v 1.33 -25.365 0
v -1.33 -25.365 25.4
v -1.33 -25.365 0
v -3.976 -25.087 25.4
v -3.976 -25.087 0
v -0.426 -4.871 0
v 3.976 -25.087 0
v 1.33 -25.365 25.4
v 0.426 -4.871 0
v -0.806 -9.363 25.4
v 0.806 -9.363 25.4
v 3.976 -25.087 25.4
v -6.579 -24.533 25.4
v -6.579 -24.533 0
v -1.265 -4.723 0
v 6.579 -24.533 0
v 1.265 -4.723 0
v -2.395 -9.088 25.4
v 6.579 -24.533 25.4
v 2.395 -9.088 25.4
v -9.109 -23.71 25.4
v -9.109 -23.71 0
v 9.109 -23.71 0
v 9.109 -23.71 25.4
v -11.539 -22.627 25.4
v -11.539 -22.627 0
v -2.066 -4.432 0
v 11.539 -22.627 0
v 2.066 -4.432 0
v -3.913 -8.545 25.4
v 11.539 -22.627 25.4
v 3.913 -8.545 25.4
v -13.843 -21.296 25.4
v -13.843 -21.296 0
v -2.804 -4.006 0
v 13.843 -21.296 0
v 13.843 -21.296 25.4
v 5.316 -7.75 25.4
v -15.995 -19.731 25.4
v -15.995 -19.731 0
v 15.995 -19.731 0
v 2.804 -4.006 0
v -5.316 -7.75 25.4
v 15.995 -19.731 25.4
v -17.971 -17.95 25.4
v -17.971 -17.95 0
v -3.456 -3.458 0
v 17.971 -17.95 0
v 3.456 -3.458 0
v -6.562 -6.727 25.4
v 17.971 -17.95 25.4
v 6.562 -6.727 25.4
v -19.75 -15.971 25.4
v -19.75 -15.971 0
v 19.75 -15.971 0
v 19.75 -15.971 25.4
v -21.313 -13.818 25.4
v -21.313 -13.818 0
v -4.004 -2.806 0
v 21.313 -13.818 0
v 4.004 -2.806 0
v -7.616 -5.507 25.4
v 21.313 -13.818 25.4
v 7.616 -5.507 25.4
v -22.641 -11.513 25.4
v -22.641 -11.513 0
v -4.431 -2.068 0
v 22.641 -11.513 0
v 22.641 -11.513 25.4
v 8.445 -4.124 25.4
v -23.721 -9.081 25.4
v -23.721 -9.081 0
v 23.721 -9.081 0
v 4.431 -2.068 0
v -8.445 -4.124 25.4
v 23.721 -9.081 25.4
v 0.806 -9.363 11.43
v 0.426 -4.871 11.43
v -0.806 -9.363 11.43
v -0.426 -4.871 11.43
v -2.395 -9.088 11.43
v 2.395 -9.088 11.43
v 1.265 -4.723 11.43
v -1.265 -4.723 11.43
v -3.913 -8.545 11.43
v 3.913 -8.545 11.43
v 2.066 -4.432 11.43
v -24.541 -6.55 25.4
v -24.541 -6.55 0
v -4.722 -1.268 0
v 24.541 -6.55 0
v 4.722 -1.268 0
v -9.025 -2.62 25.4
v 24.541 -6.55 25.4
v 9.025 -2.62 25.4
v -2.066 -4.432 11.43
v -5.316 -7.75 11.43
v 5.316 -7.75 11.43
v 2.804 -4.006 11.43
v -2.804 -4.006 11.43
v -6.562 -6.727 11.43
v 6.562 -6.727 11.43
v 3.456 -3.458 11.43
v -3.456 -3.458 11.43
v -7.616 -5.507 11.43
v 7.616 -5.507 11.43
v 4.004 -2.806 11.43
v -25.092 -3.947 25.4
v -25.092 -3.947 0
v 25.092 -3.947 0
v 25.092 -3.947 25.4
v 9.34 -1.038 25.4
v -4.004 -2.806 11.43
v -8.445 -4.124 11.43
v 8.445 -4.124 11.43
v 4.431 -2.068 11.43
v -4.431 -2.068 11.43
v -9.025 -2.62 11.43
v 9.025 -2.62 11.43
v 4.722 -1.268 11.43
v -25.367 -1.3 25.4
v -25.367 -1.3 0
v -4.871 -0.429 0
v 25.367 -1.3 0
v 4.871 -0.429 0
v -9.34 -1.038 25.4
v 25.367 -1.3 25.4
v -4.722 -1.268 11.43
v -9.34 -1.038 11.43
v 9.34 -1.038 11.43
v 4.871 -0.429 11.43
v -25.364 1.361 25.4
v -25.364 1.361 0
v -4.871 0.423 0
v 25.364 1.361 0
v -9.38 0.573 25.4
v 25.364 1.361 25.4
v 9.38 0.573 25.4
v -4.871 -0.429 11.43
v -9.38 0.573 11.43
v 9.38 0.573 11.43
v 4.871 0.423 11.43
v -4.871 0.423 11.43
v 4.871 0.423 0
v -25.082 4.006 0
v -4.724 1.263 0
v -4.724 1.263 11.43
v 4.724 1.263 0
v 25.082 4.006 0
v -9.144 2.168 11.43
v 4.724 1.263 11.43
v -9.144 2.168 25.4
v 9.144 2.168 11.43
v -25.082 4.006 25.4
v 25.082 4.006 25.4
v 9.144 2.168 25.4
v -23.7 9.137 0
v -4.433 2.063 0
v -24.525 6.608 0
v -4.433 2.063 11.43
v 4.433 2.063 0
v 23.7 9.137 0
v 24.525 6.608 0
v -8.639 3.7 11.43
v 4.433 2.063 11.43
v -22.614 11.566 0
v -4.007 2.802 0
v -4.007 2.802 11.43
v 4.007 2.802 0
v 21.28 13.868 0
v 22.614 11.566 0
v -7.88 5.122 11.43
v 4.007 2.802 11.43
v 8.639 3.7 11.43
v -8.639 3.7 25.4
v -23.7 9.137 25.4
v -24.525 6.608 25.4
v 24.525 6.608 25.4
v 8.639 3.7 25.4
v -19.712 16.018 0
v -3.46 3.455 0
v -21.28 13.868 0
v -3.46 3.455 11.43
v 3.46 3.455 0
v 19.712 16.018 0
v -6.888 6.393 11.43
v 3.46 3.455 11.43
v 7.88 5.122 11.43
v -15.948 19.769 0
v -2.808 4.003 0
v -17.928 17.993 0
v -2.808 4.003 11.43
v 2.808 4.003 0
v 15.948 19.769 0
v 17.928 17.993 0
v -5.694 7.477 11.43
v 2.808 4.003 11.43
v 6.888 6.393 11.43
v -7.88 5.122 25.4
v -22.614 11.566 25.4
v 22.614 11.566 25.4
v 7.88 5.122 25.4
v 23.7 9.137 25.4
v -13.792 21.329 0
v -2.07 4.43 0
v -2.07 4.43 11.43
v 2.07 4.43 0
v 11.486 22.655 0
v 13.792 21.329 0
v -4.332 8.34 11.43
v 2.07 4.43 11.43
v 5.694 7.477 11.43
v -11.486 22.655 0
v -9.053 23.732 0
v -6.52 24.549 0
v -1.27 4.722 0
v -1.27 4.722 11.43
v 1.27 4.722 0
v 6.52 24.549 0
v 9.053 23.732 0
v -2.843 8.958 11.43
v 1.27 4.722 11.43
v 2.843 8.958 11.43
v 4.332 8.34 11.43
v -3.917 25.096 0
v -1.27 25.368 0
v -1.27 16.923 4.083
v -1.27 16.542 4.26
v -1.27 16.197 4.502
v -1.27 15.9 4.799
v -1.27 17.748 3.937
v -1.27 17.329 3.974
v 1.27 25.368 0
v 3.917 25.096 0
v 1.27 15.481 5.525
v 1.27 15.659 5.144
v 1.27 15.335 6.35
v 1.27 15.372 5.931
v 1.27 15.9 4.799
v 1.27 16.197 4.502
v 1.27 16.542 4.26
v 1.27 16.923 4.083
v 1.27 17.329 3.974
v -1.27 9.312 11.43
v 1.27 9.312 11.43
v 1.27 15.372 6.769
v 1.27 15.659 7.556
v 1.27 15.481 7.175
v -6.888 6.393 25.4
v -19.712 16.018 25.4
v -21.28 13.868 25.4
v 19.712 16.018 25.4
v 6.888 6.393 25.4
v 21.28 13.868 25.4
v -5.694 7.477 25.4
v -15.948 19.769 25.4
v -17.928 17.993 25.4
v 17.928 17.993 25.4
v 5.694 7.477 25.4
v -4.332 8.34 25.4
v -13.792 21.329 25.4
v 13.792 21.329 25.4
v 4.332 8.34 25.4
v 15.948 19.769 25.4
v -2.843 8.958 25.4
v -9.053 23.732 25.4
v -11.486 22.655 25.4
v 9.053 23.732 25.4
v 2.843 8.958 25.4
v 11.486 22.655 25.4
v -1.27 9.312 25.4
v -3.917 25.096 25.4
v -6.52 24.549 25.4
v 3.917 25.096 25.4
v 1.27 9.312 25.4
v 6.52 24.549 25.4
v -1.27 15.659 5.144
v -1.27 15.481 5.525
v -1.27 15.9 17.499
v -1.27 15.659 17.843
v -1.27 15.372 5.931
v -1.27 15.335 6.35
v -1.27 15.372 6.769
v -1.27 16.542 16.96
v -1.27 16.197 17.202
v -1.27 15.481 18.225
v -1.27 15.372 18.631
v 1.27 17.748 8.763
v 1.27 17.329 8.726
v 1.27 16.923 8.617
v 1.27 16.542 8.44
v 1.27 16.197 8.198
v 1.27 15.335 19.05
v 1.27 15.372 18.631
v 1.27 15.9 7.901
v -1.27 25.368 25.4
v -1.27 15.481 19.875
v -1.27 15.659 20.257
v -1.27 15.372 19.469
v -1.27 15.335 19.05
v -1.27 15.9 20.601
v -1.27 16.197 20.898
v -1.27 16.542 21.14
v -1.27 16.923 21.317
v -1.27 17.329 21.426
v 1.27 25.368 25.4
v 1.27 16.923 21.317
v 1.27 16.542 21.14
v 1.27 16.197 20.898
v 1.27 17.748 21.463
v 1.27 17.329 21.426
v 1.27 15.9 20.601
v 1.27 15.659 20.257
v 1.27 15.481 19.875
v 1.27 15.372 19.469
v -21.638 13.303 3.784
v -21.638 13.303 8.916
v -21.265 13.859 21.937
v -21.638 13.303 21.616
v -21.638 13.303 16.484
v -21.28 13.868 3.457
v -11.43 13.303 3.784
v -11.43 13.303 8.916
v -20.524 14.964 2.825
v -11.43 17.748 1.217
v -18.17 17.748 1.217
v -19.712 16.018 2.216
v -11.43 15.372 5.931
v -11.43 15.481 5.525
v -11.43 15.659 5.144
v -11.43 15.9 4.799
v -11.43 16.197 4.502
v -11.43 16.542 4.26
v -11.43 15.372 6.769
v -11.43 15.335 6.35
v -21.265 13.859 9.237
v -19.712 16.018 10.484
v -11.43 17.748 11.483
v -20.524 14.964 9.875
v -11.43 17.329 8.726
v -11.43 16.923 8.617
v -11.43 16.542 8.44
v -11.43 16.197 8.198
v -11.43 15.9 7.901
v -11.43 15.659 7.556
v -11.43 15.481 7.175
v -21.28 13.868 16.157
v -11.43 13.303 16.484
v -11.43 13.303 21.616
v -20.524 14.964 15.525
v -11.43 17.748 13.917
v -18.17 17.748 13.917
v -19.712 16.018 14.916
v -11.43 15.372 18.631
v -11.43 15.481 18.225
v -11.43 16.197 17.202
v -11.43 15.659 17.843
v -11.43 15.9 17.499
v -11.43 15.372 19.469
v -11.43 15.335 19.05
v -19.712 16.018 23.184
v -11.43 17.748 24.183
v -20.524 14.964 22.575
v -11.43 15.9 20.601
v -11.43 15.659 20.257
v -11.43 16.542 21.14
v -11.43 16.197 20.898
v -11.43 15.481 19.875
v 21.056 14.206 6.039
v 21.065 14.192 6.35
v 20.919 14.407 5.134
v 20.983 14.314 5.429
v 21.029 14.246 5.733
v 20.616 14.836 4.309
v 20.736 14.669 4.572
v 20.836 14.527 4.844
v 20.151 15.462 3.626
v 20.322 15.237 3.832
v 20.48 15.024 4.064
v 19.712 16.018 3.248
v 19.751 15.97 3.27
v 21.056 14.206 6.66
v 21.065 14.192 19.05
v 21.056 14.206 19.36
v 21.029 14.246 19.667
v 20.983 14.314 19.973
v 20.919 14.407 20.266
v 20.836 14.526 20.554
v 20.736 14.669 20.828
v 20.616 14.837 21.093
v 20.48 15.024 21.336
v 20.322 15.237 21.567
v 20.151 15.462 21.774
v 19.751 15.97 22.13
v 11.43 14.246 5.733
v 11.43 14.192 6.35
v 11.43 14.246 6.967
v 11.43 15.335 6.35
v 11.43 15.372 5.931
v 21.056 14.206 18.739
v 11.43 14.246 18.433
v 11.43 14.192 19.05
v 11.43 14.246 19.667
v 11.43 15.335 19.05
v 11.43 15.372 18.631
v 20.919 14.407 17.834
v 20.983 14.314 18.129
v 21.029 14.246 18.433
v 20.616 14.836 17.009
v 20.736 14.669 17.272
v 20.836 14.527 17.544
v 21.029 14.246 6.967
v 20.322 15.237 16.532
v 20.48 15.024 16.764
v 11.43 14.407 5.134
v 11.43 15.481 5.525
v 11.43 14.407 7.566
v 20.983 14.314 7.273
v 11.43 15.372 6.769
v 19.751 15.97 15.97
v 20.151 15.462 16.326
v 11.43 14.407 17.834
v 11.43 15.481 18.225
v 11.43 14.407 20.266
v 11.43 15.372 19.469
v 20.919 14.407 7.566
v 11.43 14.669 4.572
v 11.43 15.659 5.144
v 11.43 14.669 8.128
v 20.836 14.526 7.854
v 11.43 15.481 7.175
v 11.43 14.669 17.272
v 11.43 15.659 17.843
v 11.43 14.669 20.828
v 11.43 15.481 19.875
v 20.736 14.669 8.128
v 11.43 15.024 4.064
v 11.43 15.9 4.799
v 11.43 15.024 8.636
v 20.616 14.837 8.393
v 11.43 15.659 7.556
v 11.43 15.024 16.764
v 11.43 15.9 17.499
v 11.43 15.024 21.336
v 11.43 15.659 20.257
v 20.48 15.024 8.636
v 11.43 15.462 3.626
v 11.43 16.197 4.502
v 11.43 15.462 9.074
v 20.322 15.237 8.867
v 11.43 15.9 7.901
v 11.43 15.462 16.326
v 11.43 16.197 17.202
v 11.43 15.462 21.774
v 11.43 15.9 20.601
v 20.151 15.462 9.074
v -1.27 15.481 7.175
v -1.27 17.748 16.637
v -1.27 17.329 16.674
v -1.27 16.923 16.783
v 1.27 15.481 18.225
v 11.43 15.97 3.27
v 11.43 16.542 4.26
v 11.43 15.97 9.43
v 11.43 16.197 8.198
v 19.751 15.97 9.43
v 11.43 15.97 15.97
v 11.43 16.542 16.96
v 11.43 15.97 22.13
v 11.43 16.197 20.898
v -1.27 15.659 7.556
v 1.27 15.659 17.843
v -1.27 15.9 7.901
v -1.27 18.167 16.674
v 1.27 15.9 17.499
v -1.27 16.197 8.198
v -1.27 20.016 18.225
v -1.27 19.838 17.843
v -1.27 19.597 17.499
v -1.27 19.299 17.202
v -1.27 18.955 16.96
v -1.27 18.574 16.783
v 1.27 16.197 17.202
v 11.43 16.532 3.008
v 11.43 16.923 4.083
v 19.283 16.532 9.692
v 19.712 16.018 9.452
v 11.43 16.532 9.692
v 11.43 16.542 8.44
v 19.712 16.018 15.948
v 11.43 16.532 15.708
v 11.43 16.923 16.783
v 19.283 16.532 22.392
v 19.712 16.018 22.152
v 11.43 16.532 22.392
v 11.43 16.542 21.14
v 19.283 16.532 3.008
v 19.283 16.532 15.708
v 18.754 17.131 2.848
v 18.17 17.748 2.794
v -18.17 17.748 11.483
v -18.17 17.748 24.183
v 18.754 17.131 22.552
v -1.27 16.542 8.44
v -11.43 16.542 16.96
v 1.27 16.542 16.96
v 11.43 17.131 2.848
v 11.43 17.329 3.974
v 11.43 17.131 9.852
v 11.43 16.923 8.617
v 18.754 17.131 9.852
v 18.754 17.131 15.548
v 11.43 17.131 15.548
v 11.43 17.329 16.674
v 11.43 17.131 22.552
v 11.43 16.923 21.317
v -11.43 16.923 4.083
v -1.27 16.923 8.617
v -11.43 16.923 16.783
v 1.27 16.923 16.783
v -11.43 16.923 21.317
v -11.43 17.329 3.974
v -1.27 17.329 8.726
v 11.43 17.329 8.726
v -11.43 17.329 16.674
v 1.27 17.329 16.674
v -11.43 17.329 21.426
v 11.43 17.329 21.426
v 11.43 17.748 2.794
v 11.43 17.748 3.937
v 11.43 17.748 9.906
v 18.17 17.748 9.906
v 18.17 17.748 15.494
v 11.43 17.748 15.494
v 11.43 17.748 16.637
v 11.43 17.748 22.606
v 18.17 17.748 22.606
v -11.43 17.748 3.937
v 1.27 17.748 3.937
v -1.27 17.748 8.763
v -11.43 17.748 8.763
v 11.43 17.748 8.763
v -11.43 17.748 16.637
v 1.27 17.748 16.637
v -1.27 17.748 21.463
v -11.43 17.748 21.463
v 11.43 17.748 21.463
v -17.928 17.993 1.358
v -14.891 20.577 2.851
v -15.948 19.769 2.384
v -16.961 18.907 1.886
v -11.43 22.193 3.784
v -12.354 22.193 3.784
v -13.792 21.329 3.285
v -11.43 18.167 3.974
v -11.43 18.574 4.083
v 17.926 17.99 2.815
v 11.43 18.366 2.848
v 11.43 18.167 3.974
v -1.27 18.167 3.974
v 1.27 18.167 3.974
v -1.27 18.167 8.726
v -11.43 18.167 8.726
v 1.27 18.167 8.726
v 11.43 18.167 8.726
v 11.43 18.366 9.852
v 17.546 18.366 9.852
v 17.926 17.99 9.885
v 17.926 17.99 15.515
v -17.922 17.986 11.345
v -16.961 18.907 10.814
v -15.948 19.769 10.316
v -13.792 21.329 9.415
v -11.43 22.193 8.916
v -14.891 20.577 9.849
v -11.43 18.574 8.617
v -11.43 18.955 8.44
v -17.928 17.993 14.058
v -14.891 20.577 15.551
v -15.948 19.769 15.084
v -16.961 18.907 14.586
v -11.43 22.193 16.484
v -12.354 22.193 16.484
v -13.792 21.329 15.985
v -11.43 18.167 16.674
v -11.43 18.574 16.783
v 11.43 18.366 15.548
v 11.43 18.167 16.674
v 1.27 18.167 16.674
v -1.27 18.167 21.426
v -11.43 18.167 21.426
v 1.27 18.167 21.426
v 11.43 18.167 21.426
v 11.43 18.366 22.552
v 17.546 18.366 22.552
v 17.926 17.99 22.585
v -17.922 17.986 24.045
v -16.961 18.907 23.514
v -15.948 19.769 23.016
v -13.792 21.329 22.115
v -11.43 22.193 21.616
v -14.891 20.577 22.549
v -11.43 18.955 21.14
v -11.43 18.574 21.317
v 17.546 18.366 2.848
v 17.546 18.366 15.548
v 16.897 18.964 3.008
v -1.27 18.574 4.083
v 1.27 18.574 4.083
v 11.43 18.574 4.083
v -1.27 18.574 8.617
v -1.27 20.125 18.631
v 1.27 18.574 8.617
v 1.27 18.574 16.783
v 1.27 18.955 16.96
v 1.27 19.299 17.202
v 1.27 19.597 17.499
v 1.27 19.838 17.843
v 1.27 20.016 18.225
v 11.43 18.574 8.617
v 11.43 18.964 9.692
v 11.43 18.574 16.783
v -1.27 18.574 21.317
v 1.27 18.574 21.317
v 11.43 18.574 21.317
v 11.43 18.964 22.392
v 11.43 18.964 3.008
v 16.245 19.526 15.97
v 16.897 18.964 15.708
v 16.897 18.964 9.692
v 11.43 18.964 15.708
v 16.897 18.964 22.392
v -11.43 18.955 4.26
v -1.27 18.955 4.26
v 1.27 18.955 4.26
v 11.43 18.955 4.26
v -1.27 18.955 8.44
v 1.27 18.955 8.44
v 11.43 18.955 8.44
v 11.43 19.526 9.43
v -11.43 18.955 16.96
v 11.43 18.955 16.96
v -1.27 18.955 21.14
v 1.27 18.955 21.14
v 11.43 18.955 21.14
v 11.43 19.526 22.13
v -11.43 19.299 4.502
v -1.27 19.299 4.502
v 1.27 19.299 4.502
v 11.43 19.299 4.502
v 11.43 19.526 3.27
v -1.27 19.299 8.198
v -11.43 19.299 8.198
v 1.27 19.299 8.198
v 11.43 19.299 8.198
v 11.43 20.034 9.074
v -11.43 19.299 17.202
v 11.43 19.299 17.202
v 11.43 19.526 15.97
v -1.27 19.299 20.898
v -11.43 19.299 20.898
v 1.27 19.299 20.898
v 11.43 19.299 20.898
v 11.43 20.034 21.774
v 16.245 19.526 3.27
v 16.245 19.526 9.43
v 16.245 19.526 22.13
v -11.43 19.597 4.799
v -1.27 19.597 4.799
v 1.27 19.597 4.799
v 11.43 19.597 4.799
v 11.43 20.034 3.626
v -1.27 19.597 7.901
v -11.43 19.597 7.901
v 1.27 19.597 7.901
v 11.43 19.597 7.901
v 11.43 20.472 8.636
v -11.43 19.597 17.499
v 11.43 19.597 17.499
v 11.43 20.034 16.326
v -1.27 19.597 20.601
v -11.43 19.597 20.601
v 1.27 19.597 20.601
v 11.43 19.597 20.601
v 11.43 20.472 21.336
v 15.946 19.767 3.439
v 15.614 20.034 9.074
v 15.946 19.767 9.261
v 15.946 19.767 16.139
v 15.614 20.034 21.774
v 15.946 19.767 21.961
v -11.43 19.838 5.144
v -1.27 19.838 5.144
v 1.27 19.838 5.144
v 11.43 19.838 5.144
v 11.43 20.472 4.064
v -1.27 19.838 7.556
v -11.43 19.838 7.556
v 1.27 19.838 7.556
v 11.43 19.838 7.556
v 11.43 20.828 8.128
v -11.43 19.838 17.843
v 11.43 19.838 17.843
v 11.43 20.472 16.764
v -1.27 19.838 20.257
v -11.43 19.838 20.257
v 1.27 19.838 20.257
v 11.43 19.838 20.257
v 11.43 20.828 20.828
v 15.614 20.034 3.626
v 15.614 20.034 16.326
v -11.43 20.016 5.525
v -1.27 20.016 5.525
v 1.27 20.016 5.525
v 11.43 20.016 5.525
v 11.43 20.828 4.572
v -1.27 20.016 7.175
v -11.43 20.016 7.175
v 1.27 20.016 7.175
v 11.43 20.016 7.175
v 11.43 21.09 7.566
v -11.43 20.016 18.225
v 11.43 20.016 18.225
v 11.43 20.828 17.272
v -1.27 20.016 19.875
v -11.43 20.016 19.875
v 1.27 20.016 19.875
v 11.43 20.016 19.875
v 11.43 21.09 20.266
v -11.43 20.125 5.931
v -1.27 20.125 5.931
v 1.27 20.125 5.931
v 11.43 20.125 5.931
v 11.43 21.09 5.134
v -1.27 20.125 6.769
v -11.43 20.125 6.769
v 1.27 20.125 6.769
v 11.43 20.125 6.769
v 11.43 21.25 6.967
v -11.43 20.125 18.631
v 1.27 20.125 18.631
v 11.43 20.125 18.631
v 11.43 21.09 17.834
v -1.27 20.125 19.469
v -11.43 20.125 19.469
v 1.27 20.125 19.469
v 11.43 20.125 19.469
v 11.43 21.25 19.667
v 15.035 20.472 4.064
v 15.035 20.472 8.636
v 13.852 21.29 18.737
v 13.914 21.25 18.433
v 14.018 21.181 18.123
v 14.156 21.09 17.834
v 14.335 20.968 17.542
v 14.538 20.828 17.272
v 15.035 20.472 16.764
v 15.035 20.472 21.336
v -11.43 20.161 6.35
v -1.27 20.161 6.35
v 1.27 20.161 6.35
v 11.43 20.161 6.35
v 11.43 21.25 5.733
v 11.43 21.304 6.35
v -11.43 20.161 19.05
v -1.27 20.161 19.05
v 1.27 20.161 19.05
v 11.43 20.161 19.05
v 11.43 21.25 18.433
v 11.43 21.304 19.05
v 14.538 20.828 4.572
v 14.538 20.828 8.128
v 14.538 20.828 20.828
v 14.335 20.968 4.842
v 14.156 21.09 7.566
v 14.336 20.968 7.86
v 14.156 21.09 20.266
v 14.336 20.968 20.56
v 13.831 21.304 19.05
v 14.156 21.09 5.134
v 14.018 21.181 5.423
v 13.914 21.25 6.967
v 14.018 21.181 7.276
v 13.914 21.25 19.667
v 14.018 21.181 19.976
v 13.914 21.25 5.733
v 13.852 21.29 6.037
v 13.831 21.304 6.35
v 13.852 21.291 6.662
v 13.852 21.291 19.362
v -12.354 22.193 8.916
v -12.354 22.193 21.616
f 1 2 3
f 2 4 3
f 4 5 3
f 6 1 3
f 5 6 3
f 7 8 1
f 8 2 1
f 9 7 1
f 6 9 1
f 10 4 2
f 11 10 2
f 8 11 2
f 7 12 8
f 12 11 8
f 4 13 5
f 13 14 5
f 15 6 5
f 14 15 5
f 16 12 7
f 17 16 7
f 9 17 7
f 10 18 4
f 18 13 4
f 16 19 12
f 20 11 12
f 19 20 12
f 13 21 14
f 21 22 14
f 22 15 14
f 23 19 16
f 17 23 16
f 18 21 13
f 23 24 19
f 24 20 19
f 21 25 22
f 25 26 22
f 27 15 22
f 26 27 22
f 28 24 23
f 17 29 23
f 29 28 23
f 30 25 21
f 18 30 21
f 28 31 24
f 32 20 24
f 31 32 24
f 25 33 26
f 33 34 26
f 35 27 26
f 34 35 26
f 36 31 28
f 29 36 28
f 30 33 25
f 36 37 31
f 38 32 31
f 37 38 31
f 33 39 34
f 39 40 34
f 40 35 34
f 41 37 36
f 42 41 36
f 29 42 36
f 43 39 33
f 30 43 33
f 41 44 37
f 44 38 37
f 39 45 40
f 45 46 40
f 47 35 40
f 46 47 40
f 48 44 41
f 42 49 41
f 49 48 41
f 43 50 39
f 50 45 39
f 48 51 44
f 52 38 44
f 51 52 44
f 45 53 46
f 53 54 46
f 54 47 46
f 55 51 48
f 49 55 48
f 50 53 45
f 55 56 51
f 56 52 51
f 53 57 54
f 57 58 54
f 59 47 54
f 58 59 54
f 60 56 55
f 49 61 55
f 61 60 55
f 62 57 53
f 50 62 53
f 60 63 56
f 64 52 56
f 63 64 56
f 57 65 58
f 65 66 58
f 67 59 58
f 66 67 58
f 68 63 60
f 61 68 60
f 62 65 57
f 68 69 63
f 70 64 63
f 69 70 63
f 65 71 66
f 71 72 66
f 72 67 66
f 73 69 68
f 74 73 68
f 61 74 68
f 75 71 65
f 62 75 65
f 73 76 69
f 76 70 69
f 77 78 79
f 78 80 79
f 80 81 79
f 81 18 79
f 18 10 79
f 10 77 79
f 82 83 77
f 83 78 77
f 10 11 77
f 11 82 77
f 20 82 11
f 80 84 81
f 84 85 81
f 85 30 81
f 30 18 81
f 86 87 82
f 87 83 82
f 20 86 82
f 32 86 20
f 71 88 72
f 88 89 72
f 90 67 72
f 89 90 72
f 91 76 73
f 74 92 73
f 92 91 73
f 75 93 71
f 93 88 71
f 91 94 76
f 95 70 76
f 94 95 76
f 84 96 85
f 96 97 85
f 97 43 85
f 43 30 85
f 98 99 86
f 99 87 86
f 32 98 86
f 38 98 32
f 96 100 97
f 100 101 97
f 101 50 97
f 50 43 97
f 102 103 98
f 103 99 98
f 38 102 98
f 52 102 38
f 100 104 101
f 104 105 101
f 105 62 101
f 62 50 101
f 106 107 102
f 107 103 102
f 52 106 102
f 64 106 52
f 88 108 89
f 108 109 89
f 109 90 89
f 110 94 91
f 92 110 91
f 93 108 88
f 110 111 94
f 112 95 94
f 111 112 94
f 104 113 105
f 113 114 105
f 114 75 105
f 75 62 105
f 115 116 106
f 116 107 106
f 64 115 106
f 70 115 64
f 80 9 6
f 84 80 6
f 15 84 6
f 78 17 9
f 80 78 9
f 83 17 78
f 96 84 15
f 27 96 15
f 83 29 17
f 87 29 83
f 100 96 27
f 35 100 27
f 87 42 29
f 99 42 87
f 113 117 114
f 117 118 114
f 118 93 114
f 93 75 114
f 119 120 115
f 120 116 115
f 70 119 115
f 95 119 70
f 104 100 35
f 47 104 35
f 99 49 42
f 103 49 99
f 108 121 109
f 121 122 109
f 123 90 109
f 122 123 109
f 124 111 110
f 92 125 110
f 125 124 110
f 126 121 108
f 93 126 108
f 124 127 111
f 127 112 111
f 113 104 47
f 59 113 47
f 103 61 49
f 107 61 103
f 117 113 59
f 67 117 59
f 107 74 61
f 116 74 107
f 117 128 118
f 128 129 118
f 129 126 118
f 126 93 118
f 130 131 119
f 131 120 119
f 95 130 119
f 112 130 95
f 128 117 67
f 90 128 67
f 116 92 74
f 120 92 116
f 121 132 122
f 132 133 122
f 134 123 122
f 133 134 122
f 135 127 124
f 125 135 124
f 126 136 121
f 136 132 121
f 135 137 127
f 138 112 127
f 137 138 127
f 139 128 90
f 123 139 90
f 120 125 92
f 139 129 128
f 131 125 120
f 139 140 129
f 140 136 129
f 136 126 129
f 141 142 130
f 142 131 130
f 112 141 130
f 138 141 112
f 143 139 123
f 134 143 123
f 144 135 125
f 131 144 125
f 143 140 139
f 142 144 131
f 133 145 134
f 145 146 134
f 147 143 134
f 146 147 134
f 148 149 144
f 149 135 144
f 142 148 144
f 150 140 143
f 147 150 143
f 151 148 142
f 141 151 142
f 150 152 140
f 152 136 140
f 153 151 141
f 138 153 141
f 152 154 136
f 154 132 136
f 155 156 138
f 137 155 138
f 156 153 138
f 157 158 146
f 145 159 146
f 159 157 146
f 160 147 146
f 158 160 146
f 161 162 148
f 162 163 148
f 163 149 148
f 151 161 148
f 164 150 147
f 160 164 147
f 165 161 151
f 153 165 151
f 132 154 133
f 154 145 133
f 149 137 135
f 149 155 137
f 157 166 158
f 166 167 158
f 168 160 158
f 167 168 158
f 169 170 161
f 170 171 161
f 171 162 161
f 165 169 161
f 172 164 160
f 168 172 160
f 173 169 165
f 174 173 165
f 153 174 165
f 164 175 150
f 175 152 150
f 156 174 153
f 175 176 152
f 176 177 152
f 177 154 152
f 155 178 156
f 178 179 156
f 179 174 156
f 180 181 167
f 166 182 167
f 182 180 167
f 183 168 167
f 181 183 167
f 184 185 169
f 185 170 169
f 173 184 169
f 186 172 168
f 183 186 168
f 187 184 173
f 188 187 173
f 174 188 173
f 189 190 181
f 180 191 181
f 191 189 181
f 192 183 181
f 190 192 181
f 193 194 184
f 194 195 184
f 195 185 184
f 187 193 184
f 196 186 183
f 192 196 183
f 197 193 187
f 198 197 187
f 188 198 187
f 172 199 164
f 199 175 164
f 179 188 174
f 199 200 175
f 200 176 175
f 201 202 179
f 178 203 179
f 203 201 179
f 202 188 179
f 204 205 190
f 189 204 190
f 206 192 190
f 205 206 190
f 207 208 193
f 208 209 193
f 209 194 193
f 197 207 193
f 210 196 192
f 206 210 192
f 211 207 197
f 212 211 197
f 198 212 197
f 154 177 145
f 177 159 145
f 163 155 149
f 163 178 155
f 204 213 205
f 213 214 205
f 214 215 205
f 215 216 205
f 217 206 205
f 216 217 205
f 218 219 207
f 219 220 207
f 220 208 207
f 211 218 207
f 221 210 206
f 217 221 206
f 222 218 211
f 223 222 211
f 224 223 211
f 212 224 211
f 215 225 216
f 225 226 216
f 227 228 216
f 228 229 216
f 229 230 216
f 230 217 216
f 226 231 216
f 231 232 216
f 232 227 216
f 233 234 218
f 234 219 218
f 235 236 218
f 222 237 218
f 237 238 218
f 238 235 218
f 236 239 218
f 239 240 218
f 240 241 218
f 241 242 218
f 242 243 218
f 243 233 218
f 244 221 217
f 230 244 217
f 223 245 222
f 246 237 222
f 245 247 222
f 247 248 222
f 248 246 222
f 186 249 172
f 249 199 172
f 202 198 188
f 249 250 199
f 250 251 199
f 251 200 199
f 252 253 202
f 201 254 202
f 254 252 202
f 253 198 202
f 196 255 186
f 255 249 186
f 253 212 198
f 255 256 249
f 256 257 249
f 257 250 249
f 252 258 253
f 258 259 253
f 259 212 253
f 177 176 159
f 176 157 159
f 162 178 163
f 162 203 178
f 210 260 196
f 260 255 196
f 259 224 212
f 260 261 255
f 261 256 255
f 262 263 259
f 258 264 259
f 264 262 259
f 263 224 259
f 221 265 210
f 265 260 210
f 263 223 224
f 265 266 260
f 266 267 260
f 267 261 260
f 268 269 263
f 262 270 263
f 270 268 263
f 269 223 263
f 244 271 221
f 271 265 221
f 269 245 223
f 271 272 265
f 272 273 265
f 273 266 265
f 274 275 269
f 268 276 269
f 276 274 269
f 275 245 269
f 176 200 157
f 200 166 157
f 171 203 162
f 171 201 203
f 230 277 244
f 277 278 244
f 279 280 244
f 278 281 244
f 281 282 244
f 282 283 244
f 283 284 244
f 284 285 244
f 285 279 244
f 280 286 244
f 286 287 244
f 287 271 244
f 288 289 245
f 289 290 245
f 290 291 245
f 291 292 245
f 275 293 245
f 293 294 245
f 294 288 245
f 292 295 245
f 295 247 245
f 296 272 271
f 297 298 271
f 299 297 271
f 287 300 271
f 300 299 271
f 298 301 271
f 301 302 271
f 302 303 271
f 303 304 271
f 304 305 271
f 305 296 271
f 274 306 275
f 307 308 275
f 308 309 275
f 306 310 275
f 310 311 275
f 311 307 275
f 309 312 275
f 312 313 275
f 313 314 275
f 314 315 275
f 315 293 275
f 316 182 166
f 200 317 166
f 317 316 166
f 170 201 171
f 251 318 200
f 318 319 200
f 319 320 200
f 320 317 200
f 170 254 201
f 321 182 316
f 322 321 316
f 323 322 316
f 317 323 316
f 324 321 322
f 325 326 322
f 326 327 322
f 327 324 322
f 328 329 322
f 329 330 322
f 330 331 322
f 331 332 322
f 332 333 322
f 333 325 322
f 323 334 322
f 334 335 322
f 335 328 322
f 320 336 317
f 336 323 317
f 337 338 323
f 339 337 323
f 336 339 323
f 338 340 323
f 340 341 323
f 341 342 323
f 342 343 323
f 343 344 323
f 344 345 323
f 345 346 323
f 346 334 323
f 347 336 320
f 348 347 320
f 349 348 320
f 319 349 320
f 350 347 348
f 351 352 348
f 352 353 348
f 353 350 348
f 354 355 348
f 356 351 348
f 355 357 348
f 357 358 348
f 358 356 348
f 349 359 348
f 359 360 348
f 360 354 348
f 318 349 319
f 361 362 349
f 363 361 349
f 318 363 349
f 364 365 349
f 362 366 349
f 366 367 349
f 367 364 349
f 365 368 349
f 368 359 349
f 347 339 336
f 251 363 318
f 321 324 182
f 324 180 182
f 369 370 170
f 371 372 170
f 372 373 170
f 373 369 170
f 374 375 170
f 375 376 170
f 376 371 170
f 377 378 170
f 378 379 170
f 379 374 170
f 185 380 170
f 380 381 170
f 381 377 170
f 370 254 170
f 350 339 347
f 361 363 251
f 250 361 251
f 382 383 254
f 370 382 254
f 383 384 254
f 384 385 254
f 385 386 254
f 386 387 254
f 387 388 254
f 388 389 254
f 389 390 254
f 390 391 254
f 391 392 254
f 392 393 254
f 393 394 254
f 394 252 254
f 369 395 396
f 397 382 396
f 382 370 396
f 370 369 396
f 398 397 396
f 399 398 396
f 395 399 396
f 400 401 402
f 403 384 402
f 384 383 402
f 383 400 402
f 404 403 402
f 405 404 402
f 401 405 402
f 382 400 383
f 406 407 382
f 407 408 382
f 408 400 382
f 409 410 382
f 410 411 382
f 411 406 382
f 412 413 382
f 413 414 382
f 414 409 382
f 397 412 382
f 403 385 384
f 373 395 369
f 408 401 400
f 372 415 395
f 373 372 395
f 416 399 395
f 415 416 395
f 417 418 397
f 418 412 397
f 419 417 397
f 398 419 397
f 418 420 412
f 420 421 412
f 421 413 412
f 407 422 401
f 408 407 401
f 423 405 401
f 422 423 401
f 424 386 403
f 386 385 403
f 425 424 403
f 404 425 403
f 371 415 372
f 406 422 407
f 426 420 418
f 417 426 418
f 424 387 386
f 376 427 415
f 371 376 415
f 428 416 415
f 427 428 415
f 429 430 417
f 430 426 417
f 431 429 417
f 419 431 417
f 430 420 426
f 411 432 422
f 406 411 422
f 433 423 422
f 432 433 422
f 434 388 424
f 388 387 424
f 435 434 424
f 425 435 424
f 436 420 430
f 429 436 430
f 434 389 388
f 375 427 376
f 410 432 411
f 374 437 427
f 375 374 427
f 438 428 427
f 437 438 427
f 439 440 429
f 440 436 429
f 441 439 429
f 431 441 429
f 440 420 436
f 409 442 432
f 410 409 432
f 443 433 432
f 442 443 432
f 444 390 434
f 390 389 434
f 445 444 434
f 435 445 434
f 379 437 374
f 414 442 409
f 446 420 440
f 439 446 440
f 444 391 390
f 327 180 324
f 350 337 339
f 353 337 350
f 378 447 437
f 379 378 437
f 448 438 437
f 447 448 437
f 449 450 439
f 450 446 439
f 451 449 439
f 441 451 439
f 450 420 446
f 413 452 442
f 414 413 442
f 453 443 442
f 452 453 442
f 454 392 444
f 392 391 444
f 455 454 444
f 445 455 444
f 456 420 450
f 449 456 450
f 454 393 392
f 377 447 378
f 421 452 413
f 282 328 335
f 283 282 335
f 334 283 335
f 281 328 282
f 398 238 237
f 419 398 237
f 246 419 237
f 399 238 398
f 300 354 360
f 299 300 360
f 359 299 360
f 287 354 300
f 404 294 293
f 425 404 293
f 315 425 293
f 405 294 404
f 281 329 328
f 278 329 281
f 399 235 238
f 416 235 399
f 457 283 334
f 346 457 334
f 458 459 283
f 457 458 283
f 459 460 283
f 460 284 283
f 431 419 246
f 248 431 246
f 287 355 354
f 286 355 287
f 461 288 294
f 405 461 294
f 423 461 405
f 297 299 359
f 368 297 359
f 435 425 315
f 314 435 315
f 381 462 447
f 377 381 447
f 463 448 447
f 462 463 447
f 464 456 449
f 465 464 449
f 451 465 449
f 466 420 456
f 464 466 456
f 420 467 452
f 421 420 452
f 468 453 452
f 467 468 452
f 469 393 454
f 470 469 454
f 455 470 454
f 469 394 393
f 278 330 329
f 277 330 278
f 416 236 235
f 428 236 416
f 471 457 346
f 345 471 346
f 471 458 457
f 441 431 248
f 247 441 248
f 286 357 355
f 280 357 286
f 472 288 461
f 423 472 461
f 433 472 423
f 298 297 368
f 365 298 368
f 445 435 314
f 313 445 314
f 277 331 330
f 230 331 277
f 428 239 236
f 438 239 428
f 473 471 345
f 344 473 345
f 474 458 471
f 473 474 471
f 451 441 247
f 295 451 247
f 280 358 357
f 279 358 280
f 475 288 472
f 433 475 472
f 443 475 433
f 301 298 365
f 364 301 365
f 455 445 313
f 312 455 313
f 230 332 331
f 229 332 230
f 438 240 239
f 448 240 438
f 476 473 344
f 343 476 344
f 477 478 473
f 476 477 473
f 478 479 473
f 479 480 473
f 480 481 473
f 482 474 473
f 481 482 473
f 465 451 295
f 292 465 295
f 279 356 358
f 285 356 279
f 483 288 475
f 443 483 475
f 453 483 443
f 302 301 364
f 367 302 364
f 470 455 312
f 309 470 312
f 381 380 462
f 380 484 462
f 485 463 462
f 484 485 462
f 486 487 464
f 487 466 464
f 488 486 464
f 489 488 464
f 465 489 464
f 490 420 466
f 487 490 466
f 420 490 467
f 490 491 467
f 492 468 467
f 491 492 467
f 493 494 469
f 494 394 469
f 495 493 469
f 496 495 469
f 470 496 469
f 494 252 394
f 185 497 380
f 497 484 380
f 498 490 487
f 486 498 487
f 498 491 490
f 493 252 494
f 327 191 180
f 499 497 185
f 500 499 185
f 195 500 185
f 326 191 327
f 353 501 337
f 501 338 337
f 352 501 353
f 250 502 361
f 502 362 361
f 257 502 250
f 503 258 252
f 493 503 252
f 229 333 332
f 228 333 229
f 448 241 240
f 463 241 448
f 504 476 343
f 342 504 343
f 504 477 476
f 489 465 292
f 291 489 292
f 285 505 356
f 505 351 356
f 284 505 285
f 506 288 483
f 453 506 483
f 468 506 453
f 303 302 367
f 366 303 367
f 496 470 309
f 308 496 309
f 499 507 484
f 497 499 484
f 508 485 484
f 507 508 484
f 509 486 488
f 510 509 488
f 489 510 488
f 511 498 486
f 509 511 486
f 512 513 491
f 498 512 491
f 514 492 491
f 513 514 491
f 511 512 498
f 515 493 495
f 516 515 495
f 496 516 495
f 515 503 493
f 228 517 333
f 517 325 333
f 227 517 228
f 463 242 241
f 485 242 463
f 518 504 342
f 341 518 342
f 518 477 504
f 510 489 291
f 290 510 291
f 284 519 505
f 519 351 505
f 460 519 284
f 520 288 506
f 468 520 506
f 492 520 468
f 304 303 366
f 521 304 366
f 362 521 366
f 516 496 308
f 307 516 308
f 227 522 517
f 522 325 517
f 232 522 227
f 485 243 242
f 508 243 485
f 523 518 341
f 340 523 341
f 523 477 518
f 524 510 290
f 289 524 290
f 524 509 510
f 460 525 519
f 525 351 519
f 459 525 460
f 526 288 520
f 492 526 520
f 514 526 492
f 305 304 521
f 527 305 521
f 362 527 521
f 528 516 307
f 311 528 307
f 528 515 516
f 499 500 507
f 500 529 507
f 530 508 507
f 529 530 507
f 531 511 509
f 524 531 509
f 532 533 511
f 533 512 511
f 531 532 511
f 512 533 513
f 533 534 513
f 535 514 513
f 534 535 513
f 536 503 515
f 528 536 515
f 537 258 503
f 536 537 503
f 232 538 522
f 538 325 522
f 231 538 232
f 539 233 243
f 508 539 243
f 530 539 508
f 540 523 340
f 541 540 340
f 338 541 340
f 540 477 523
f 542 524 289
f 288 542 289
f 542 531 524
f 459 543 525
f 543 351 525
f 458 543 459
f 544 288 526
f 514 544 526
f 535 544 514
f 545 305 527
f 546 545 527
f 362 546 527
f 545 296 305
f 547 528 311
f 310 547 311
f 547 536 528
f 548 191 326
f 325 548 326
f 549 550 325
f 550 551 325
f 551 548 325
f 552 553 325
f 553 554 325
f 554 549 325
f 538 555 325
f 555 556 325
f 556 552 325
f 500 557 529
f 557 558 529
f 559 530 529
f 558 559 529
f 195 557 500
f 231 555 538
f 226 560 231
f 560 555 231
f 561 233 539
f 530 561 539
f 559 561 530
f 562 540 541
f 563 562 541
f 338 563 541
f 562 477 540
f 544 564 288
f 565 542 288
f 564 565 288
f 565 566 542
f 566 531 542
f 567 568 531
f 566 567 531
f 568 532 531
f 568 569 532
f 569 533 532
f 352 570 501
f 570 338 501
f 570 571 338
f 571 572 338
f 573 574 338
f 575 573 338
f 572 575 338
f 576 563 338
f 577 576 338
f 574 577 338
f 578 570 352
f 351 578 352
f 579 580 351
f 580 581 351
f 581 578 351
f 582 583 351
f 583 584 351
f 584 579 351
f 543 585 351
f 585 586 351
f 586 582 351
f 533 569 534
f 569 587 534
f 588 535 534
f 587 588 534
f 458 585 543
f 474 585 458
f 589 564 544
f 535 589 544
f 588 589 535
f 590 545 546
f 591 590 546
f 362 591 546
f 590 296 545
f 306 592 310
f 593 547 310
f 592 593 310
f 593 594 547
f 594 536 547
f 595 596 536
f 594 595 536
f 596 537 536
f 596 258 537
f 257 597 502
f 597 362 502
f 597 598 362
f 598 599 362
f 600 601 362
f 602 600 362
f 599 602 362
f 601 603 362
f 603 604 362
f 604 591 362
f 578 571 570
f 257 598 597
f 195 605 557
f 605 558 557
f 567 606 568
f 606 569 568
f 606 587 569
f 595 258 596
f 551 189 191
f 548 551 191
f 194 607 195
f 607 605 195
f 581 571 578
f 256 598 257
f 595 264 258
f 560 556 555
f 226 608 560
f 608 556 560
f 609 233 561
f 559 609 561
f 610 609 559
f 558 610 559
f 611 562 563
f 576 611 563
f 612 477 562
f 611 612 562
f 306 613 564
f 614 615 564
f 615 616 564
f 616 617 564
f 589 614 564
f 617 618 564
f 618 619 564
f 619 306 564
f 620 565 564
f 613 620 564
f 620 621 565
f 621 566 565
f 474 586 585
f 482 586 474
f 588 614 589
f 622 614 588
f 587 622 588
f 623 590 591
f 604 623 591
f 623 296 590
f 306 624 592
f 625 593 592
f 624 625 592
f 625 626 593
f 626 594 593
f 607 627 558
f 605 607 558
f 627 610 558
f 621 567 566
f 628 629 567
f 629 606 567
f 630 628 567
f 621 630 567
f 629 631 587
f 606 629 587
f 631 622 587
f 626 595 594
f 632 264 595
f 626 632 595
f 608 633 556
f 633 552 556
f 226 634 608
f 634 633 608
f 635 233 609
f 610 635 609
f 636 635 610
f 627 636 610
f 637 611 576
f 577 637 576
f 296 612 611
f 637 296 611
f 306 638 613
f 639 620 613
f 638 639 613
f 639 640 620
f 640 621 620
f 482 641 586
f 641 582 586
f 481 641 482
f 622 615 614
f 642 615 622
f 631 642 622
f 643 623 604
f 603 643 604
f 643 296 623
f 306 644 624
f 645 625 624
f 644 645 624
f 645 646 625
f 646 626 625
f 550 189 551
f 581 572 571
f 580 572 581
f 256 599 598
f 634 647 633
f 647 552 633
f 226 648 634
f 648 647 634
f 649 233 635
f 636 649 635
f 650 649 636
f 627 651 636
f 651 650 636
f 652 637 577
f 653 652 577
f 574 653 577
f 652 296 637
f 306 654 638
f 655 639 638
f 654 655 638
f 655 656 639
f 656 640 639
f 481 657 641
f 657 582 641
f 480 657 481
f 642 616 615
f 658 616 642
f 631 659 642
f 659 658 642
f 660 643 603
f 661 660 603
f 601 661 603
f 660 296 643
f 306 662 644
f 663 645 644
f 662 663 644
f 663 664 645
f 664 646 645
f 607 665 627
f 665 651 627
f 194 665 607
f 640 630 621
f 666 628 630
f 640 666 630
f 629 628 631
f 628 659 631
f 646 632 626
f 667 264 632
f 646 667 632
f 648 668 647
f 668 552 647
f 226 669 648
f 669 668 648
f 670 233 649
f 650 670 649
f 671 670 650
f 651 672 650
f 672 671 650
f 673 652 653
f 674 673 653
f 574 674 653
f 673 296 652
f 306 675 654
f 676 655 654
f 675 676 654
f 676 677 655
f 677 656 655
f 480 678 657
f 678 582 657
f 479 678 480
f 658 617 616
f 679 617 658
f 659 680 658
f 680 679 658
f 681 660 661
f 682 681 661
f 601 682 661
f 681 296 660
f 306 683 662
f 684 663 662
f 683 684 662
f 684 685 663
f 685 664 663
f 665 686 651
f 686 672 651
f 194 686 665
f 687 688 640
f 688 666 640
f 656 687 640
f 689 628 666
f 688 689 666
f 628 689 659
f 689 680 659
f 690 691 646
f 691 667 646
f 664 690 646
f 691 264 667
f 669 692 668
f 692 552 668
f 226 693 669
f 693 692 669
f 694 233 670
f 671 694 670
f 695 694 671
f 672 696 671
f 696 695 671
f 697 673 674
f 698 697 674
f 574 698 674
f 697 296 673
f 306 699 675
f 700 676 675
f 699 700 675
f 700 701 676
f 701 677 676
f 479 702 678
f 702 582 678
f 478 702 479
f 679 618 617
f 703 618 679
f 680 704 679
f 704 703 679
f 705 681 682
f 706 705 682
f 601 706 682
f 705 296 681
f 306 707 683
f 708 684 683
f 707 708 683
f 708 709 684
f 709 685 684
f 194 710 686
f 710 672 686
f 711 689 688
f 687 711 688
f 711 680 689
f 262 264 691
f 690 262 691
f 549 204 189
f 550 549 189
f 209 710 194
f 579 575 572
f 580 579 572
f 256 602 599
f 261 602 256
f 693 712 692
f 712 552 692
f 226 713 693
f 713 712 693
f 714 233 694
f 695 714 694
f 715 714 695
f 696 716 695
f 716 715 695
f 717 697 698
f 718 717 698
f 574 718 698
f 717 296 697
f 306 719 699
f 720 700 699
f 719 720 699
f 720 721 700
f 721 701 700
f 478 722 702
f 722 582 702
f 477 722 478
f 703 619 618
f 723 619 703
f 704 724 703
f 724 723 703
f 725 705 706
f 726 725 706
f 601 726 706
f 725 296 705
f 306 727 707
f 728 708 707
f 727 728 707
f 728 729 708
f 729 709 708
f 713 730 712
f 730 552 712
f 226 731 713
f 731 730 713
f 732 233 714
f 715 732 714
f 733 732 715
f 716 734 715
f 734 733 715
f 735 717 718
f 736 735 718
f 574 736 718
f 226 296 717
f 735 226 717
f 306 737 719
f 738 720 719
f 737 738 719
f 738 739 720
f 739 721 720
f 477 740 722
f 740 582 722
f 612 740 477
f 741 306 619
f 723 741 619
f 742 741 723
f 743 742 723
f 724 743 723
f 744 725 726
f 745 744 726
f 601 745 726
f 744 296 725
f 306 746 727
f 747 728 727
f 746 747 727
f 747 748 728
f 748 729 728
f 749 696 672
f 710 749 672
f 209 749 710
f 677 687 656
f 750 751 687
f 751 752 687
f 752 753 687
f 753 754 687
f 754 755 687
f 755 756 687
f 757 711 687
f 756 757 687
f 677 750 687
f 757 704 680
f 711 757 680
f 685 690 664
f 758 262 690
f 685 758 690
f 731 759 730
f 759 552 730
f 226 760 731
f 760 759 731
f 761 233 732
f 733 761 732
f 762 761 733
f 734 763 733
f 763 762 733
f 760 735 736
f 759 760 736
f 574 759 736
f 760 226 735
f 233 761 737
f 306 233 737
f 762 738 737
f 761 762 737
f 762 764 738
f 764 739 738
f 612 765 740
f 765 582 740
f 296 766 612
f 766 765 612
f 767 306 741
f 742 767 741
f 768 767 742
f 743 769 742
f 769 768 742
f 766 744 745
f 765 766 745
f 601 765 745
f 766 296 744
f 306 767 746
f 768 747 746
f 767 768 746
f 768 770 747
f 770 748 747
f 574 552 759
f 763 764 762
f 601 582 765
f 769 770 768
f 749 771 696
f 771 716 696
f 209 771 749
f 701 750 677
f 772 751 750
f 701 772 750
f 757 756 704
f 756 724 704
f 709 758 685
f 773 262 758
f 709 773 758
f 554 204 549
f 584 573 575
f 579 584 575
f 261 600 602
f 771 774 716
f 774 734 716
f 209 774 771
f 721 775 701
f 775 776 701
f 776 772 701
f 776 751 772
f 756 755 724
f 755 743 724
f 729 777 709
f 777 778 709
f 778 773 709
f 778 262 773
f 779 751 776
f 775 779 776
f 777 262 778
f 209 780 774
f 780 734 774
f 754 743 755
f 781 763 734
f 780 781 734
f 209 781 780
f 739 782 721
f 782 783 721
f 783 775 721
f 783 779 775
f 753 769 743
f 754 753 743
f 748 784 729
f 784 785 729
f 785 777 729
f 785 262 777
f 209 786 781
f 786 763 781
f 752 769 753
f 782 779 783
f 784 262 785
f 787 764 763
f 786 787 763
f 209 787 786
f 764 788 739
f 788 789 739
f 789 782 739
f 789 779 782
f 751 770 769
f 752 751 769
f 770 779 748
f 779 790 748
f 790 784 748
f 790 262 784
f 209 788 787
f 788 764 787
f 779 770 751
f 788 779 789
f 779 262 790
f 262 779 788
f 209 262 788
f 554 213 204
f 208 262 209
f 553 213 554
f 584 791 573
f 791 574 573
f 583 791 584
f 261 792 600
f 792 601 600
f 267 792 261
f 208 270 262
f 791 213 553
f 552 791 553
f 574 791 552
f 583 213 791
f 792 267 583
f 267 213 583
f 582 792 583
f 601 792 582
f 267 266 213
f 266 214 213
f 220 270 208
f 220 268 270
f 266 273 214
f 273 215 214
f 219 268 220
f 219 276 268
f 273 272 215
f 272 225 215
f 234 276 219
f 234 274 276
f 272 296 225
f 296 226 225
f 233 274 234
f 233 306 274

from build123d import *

# Parameters (mm, degrees)
SKETCH1_R                       = 25.4
BOSS_EXTRUDE1_DEPTH             = 25.4
SKETCH2_R                       = 4.8895
CUT_EXTRUDE1_DEPTH              = 11.43
SKETCH3_R                       = 9.398
CUT_EXTRUDE2_DEPTH              = 13.97
DIVIDE_REACH                    = 45.994
SKETCH7_W                       = 2.54
SKETCH7_H                       = 25.4
SKETCH8_R                       = 2.413
F_4_40_THROUGH_HOLE_DEPTH       = 45.739343983
SKETCH9_R                       = 3.556
F_4_40_HEAD_CLEARANCE_DEPTH     = 52.446758086
F_4_40_HEX_NUT_DEPRESSION_DEPTH = 52.446758086
LPATTERN1_COUNT                 = 2
LPATTERN1_PITCH                 = 12.7


with BuildPart() as part:
    # Sketch1 → Boss-Extrude1 (new body)
    with BuildSketch(Plane.XY):
        Circle(SKETCH1_R)
    extrude(amount=BOSS_EXTRUDE1_DEPTH)

    # Sketch2 → Cut-Extrude1 (cut)
    with BuildSketch(Plane(origin=(0, 0, 0), x_dir=(-1, 0, 0), z_dir=(0, 0, -1))):
        Circle(SKETCH2_R)
    extrude(amount=-CUT_EXTRUDE1_DEPTH, mode=Mode.SUBTRACT)

    # Sketch3 → Cut-Extrude2 (cut)
    with BuildSketch(Plane.XY.offset(25.4)):
        Circle(SKETCH3_R)
    extrude(amount=-CUT_EXTRUDE2_DEPTH, mode=Mode.SUBTRACT)

    # Sketch7 → Divide (cut, up to next)
    with BuildSketch(Plane(origin=(0, 0, 0), x_dir=(-1, 0, 0), z_dir=(0, 0, -1)), mode=Mode.PRIVATE) as divide_sk1:
        with Locations((0, 12.7)):
            Rectangle(SKETCH7_W, SKETCH7_H)
    divide_tool1 = extrude(divide_sk1.sketch, amount=-DIVIDE_REACH, mode=Mode.PRIVATE) & part.part
    add(divide_tool1.solids().sort_by_distance((0, 12.7, 0))[0], mode=Mode.SUBTRACT)

    # Sketch8 → 4-40 through hole (cut, symmetric)
    with BuildSketch(Plane.ZY.offset(-1.27)):
        with Locations((19.05, 17.748230131)):
            Circle(SKETCH8_R)
    f_4_40_through_hole = extrude(amount=F_4_40_THROUGH_HOLE_DEPTH, both=True, mode=Mode.SUBTRACT)

    # Sketch9 → 4-40 head clearance (cut, through all)
    with BuildSketch(Plane.ZY.offset(-11.43)):
        with Locations((19.05, 17.748230131)):
            Circle(SKETCH9_R)
    f_4_40_head_clearance = extrude(amount=-F_4_40_HEAD_CLEARANCE_DEPTH, mode=Mode.SUBTRACT)

    # Sketch10 → 4-40 hex nut depression (cut, through all)
    with BuildSketch(Plane(origin=(-11.43, 0, 0), x_dir=(0, 0, -1), z_dir=(1, 0, 0))):
        Polygon((-21.616321947, 13.303230131), (-16.483678053, 13.303230131), (-13.917356107, 17.748230131), (-16.483678053, 22.193230131), (-21.616321947, 22.193230131), (-24.182643893, 17.748230131), align=None)
    f_4_40_hex_nut_depression = extrude(amount=-F_4_40_HEX_NUT_DEPRESSION_DEPTH, mode=Mode.SUBTRACT)

    # LPattern1: 4-40 through hole, 4-40 head clearance, 4-40 hex nut depression ×2
    with Locations(*[(0, 0, -i * LPATTERN1_PITCH) for i in range(1, LPATTERN1_COUNT)]):
        add(f_4_40_through_hole, mode=Mode.SUBTRACT)
        add(f_4_40_head_clearance, mode=Mode.SUBTRACT)
        add(f_4_40_hex_nut_depression, mode=Mode.SUBTRACT)


solid = part.part
